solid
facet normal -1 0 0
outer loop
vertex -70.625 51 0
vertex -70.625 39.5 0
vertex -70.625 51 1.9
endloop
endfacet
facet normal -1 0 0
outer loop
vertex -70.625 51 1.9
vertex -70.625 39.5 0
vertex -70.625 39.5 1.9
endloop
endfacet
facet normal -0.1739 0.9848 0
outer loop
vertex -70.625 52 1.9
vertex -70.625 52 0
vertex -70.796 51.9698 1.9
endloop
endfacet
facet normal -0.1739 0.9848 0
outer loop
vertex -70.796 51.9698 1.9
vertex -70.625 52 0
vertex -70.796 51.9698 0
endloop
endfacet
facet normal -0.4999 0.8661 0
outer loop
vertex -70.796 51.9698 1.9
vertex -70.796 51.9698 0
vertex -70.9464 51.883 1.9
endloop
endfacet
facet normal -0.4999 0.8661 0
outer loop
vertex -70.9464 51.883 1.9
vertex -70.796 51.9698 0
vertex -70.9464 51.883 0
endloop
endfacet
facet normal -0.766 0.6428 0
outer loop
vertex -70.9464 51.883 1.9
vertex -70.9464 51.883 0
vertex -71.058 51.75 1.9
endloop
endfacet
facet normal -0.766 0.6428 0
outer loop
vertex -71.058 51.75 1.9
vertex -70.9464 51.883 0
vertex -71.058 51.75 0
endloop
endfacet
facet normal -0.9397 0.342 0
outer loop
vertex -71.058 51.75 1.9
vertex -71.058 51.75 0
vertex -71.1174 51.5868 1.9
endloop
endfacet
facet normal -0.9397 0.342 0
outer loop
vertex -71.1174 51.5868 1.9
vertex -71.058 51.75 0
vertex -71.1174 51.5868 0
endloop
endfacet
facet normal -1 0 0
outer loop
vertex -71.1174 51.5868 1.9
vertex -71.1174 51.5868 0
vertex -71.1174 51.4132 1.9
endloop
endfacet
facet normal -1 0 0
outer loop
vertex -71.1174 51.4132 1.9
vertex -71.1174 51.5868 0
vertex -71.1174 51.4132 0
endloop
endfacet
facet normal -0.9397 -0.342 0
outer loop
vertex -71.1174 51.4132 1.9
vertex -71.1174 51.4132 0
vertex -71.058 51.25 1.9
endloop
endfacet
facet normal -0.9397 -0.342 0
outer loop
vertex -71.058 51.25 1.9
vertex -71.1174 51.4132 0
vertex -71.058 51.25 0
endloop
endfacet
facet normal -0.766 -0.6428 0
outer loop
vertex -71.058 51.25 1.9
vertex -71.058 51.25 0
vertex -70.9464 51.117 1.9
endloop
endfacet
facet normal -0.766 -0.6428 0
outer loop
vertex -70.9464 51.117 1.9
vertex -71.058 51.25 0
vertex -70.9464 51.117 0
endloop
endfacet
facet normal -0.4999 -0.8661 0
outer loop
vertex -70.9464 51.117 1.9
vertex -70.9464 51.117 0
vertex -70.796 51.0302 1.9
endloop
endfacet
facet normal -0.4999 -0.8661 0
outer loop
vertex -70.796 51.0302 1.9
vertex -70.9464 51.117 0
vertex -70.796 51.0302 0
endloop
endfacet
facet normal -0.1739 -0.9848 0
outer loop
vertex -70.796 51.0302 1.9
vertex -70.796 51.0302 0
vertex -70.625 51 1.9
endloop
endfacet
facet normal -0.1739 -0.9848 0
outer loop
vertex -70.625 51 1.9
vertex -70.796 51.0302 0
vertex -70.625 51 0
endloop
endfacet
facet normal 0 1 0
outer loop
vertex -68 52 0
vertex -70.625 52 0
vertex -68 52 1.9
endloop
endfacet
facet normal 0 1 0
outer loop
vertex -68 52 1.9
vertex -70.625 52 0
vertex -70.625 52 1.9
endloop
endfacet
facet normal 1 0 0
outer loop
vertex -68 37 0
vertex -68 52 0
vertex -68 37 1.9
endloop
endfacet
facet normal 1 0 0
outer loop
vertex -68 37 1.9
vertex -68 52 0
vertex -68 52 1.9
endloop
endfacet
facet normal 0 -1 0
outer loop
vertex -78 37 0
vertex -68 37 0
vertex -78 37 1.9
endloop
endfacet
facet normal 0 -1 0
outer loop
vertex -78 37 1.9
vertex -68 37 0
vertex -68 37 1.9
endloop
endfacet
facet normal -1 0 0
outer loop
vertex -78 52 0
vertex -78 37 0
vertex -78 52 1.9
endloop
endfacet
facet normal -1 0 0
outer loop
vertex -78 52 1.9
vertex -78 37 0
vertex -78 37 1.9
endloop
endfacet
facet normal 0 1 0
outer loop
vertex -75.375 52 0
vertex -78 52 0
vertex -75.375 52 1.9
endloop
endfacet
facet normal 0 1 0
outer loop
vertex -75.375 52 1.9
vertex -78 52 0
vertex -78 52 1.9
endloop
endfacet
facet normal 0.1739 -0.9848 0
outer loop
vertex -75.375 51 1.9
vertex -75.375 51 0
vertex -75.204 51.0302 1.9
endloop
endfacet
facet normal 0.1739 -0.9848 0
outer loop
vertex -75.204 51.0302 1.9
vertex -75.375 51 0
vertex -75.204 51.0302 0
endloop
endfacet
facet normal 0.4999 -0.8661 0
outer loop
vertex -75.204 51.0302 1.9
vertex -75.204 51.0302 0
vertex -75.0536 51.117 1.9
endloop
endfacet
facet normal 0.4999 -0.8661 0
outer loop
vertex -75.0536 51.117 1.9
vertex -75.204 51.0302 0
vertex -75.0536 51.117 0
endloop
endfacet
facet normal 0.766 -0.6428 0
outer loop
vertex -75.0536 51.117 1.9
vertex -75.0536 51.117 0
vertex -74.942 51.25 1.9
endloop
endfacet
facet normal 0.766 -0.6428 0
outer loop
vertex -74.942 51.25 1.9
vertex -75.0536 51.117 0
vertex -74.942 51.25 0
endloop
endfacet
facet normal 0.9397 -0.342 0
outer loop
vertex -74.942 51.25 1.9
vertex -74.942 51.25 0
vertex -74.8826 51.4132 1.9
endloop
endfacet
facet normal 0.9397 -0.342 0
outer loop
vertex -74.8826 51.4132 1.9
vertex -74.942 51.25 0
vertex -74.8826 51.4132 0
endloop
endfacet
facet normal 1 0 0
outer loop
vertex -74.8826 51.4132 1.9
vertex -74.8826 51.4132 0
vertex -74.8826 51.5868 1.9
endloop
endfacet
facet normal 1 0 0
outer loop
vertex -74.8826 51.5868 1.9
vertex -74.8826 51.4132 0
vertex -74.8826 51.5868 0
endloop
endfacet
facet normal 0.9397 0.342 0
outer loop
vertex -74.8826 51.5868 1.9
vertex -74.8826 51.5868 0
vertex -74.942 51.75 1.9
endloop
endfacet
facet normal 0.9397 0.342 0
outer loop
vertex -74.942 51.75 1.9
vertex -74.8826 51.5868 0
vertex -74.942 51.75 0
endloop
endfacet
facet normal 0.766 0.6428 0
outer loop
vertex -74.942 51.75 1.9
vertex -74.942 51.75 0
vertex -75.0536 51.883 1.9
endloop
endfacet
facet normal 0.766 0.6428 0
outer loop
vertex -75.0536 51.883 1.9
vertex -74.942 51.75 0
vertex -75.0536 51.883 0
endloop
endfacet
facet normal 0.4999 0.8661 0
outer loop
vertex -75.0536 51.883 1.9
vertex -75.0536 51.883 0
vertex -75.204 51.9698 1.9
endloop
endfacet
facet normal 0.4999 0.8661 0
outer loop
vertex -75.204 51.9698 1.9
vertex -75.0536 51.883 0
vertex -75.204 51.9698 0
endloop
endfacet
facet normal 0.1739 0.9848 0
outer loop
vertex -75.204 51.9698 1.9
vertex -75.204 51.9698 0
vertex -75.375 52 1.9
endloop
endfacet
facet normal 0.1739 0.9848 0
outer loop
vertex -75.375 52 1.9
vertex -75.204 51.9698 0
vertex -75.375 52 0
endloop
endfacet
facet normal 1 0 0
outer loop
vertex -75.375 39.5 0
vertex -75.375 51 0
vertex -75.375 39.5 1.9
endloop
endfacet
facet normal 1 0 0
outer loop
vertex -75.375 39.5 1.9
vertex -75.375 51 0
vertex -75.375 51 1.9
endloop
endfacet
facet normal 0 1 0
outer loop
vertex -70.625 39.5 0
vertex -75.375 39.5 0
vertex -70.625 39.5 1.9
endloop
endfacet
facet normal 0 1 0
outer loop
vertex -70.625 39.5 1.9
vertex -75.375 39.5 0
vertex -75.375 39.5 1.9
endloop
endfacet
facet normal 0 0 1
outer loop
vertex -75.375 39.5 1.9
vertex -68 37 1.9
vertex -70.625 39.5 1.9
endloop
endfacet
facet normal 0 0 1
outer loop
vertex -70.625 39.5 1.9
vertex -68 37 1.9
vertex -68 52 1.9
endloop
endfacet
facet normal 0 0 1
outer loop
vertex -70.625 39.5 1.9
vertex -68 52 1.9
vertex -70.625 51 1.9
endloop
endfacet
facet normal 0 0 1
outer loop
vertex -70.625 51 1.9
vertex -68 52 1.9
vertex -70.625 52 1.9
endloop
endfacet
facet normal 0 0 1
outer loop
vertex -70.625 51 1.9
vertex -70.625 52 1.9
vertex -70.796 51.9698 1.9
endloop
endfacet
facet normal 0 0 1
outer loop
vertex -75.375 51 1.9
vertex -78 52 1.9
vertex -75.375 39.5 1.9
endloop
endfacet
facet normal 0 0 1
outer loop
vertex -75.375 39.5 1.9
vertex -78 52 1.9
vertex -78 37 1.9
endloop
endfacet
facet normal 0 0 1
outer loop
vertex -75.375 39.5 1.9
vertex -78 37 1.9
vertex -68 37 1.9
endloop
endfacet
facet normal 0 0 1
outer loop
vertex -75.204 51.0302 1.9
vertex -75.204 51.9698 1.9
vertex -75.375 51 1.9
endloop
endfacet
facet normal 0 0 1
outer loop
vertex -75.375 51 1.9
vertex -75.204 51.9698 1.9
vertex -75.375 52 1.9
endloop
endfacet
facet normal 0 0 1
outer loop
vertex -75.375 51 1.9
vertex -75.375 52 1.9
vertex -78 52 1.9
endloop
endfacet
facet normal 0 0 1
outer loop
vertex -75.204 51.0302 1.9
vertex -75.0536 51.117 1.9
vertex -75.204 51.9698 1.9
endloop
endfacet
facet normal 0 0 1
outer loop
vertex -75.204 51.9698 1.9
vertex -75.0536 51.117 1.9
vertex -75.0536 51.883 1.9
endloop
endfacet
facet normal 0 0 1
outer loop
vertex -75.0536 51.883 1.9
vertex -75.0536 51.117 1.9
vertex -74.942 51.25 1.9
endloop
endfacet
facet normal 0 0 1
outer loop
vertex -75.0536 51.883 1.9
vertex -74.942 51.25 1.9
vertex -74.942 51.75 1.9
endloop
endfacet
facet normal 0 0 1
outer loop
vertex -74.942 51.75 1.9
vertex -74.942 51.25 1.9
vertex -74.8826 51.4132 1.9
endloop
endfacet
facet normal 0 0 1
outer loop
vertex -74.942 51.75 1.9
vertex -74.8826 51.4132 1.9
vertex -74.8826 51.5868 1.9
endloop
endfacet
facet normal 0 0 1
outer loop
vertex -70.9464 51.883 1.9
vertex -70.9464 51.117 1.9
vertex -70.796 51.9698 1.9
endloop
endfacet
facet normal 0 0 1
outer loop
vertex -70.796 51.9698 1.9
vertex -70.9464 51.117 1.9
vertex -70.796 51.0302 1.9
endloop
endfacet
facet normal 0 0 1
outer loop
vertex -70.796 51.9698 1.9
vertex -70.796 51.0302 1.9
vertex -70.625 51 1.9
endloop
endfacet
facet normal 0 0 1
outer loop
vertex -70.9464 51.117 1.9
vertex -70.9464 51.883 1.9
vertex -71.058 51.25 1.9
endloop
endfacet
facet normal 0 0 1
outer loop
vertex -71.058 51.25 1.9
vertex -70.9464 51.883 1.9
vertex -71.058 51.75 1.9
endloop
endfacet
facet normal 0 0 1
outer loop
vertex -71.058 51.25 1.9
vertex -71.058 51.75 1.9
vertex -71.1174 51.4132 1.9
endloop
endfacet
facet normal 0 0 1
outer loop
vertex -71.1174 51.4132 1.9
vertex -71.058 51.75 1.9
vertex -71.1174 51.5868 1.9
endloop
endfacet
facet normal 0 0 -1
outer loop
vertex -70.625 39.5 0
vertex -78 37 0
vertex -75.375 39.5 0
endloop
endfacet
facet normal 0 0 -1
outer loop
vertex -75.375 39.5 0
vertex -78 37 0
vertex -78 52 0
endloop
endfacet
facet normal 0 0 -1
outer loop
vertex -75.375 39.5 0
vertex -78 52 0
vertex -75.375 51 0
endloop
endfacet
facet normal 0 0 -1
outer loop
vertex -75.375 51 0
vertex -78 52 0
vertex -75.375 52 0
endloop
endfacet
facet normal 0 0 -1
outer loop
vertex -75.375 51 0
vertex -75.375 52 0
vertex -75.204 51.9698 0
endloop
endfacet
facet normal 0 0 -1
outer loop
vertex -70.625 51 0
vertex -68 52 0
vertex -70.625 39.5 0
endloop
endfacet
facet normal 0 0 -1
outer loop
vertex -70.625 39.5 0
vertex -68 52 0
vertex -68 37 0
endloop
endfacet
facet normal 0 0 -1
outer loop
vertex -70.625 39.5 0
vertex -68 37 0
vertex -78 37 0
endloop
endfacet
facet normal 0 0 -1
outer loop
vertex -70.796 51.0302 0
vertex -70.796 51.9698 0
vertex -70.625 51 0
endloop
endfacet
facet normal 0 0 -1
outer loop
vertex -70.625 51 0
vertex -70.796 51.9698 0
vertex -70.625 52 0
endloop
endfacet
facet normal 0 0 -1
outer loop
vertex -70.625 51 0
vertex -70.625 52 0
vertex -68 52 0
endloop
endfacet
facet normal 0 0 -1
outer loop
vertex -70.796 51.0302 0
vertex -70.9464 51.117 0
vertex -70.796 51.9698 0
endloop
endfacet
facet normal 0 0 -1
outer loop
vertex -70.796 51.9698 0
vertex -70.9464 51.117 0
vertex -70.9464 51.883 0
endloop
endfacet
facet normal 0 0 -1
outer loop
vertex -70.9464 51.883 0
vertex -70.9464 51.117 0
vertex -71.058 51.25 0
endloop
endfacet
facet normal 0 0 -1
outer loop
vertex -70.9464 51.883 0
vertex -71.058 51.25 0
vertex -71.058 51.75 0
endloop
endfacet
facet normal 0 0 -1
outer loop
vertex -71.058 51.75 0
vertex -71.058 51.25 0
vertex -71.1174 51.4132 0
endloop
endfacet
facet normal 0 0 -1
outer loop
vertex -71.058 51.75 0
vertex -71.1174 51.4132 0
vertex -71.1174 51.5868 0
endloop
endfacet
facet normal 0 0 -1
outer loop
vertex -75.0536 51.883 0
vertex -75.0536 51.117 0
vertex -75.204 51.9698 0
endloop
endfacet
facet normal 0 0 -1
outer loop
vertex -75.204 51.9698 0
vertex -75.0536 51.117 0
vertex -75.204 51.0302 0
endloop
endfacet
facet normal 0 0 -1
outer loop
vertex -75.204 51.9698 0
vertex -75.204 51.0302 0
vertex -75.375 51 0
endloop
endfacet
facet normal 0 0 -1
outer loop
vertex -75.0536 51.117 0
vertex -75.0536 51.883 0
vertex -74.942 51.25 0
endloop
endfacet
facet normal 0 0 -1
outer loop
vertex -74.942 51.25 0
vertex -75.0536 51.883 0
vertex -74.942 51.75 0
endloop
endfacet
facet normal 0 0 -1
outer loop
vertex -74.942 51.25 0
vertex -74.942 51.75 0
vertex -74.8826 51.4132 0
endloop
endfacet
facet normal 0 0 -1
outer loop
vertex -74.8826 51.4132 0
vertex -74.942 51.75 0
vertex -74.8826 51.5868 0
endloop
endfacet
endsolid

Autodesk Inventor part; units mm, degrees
ref_plane "YZ Plane" through (0, 0, 0) normal (1, 0, 0) x (0, 1, 0)
ref_plane "XZ Plane" through (0, 0, 0) normal (0, 1, 0) x (-1, 0, 0)
ref_plane "XY Plane" through (0, 0, 0) normal (0, 0, 1) x (1, 0, 0)
ref_plane "Work Plane2" through (0, 0, 0) normal (0, 0, 1) x (1, 0, 0)
sketch "Sketch2" plane through (0, 0, 0) normal (0, 0, 1) x (1, 0, 0)
  line L0 (-70.75, 49.5) -> (-69.25, 49.5) construction
  line L1 (-70.75, 39.5) -> (-70.75, 49.5) construction
  line L2 (-69.25, 39.5) -> (-70.75, 39.5) construction
  line L3 (-69.25, 49.5) -> (-69.25, 39.5) construction
  line L4 (-76.75, 49.5) -> (-75.25, 49.5) construction
  line L5 (-76.75, 39.5) -> (-76.75, 49.5) construction
  line L6 (-75.25, 39.5) -> (-76.75, 39.5) construction
  line L7 (-75.25, 39.5) -> (-75.25, 49.5) construction
  line L8 (-75.25, 44.5) -> (-70.75, 44.5) construction
  line L9 (-75.375, 39.5) -> (-75.375, 49.5)
  line L10 (-75.375, 49.5) -> (-70.625, 49.5) construction
  line L11 (-70.625, 49.5) -> (-70.625, 39.5)
  line L12 (-70.625, 39.5) -> (-75.375, 39.5)
  line L13 (-75.375, 39.5) -> (-70.625, 49.5) construction
  line L14 (-75.375, 49.5) -> (-70.625, 39.5) construction
  line L15 (-68, 37) -> (-78, 37)
  line L16 (-78, 37) -> (-78, 52)
  line L17 (-78, 52) -> (-75.375, 52)
  line L18 (-68, 52) -> (-68, 37)
  line L19 (-68, 37) -> (-78, 52) construction
  line L20 (-78, 37) -> (-68, 52) construction
  line L21 (-75.375, 49.5) -> (-75.375, 51)
  line L22 (-70.625, 49.5) -> (-70.625, 51)
  line L23 (-75.375, 52) -> (-70.625, 52) construction
  line L24 (-70.625, 52) -> (-68, 52)
  arc A0 (-75.375, 51) -> (-75.375, 52) centre (-75.375, 51.5) ccw
  arc A1 (-70.625, 52) -> (-70.625, 51) centre (-70.625, 51.5) ccw
  line L25 (-75.375, 51) -> (-75.375, 52) construction
  arc A2 (-75.375, 52) -> (-75.375, 51) centre (-75.375, 51.5) ccw construction
  arc A3 (-70.625, 51) -> (-70.625, 52) centre (-70.625, 51.5) ccw construction
  line L26 (-70.625, 51) -> (-70.625, 52) construction
  point P0 (0, 0)
  point P1 (-73, 44.5)
  dimension "d0" = 4.75
  dimension "d1" = 10
  dimension "d2" = 15
  dimension "d3" = 1
  dimension "d4" = 1
extrude "Extrusion1" add sketch "Sketch2" along normal blind 1.9
properties part number "IRHolder_new2"
